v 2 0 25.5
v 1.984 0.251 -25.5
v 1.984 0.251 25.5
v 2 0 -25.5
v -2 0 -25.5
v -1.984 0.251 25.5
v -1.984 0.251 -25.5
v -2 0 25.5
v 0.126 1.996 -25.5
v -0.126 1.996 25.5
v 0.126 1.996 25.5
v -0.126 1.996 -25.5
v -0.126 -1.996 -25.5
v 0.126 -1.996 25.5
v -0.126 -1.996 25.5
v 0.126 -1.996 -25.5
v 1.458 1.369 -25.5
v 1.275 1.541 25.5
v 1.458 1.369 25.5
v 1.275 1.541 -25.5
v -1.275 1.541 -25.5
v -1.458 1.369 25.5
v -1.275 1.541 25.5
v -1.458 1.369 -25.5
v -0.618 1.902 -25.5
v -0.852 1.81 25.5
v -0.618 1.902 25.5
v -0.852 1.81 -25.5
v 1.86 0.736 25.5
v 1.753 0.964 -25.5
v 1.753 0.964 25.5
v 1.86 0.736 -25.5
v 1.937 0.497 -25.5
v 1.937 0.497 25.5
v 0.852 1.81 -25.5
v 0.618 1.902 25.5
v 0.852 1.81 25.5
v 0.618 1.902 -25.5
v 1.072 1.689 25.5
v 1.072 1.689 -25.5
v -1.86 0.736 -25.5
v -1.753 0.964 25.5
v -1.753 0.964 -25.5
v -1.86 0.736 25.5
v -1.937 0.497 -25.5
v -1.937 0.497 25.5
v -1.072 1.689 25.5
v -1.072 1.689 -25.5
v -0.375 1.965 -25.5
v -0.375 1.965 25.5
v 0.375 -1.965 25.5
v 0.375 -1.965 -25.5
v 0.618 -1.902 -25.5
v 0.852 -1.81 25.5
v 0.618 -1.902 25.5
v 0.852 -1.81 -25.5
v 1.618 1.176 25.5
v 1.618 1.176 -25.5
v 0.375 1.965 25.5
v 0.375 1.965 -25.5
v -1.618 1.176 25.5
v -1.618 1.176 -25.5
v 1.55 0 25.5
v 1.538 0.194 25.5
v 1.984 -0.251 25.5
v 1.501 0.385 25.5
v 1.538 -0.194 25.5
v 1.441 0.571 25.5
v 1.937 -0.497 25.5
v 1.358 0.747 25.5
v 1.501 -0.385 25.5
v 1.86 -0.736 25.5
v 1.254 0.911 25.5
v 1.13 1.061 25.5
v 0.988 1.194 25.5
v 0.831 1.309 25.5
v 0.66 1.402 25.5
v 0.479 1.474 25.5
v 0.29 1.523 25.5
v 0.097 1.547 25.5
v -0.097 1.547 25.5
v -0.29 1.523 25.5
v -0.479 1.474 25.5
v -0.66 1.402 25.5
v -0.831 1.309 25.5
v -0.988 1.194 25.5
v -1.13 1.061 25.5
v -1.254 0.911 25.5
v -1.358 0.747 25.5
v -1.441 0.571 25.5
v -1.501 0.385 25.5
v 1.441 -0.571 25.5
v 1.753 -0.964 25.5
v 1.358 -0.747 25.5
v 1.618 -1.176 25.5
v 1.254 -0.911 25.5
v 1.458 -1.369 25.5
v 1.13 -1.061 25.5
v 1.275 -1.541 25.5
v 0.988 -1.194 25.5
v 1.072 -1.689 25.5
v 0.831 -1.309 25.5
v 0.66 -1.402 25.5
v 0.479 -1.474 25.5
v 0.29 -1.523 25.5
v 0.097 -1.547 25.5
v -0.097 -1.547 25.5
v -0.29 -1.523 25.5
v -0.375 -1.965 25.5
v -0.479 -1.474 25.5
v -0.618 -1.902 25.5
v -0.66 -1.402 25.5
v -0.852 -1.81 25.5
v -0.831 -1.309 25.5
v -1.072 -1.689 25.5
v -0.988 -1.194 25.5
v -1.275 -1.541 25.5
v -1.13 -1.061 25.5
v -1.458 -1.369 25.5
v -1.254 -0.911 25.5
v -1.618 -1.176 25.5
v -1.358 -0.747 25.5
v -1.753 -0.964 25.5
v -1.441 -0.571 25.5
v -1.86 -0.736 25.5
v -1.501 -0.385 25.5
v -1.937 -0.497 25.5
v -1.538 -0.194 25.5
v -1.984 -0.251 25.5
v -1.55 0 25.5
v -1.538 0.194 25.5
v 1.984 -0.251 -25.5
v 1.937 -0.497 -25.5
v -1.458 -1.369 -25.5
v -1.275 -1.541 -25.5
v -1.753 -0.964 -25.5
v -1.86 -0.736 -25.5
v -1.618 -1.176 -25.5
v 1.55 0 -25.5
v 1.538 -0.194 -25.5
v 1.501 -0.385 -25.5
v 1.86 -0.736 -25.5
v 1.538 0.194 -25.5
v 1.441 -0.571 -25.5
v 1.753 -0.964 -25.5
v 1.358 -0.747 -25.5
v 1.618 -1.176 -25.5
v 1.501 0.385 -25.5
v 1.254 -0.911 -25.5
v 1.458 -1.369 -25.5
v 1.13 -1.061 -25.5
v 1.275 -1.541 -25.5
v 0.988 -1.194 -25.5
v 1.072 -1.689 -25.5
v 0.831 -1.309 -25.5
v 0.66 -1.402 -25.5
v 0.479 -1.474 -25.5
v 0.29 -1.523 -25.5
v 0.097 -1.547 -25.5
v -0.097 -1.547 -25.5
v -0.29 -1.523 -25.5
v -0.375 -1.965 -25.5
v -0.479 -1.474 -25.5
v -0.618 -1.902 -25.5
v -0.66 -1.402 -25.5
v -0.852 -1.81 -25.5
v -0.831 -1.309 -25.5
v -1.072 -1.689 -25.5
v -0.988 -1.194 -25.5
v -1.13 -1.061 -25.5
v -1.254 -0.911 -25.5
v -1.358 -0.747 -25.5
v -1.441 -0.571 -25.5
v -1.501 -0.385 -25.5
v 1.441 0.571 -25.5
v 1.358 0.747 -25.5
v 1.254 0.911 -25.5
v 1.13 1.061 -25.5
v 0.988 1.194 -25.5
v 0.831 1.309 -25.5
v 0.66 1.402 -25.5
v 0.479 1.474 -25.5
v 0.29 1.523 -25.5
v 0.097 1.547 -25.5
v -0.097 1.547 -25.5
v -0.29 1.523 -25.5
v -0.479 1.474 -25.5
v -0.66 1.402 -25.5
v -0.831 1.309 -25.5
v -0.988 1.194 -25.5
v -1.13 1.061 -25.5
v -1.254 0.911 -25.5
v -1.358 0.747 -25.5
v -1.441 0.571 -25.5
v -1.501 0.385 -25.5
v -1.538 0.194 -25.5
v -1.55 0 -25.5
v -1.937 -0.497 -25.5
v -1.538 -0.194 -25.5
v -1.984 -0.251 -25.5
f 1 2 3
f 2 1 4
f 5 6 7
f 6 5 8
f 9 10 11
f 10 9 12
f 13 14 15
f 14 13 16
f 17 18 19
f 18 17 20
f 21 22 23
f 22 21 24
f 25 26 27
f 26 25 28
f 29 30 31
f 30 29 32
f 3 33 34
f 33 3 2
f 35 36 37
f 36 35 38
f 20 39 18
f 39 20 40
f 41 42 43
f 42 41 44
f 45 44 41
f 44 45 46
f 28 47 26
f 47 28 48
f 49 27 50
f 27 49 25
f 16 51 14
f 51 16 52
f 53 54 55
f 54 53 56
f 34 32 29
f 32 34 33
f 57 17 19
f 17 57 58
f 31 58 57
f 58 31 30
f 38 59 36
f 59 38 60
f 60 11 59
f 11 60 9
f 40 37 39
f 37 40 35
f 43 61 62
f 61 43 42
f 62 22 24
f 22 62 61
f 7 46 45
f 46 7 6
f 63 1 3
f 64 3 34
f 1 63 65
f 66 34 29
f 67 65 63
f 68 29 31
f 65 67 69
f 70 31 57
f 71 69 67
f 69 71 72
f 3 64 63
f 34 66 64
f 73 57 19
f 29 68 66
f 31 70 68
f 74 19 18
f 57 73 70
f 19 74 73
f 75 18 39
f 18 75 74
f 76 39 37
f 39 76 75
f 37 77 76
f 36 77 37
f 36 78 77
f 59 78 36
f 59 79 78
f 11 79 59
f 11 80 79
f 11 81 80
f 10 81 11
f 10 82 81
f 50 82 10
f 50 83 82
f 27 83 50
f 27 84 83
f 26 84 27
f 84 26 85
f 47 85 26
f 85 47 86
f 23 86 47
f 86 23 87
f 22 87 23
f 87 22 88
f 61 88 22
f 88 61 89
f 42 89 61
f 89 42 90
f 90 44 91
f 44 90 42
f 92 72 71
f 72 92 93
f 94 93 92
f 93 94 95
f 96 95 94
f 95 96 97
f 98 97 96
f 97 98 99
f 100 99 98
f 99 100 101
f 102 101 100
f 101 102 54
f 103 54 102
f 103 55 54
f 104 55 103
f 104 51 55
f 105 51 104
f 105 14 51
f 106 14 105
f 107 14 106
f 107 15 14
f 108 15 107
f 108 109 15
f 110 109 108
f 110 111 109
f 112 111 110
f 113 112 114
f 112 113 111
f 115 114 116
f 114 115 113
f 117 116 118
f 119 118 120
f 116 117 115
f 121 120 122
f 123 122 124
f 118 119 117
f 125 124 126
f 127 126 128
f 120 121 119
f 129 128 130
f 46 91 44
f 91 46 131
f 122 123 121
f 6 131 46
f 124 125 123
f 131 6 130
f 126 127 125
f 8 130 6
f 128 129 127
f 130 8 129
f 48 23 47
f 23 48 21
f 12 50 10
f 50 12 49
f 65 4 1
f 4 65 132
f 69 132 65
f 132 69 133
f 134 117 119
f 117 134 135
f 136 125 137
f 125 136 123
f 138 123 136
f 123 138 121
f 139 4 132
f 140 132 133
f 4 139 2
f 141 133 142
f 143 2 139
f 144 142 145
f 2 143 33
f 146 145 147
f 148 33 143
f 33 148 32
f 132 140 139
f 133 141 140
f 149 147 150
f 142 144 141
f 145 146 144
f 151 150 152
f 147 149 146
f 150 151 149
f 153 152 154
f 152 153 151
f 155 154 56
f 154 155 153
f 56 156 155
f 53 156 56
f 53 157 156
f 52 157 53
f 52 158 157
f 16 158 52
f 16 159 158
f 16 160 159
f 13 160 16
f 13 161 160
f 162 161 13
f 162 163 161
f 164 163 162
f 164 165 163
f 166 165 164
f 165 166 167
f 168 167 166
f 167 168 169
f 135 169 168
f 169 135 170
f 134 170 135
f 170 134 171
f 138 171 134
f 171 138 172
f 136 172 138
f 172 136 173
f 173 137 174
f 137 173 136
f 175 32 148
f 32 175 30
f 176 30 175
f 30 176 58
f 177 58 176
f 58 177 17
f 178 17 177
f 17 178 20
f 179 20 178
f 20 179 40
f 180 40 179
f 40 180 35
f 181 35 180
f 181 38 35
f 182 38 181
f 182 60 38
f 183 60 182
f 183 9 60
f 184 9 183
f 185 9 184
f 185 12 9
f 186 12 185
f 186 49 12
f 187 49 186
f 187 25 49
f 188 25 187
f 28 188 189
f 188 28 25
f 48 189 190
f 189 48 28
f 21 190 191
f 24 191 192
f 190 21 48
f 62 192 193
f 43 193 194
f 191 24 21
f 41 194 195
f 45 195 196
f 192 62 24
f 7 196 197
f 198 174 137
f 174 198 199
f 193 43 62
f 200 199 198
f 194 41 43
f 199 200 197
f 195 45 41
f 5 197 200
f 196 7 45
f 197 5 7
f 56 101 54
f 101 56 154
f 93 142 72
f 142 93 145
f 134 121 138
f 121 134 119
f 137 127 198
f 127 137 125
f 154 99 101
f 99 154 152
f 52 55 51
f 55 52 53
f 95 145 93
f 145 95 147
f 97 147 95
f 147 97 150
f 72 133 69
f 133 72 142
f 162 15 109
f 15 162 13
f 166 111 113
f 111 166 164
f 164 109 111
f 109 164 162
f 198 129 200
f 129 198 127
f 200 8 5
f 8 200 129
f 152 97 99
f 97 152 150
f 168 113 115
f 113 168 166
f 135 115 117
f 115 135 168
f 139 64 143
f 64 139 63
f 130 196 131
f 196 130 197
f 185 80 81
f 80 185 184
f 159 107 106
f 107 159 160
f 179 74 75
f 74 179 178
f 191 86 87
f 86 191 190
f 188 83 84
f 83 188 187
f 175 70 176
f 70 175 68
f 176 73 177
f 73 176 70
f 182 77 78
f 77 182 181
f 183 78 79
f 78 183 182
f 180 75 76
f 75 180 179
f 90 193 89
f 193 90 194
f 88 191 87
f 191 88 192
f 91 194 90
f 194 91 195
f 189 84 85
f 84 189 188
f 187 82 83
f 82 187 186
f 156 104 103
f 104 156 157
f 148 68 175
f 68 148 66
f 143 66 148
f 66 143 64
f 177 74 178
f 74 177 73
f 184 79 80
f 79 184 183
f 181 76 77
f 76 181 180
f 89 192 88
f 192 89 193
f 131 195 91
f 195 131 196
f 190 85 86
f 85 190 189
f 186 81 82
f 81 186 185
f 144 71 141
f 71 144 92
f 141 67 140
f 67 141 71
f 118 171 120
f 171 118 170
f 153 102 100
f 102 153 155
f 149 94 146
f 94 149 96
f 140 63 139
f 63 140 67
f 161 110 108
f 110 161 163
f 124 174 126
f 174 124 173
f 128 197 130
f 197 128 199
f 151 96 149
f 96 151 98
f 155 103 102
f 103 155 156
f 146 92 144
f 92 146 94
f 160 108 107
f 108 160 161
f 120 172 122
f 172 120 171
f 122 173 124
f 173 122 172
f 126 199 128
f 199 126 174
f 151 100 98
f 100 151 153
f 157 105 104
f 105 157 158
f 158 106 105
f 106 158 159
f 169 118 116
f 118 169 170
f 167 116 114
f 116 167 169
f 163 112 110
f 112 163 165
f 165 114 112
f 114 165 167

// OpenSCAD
$fn = 50;


difference() {
	union() {
		translate(v = [0, 0, -25.5000000000]) {
			cylinder(h = 51, r = 2.0000000000);
		}
	}
	union() {
		translate(v = [0, 0, -100.0000000000]) {
			cylinder(h = 200, r = 1.5500000000);
		}
	}
}
